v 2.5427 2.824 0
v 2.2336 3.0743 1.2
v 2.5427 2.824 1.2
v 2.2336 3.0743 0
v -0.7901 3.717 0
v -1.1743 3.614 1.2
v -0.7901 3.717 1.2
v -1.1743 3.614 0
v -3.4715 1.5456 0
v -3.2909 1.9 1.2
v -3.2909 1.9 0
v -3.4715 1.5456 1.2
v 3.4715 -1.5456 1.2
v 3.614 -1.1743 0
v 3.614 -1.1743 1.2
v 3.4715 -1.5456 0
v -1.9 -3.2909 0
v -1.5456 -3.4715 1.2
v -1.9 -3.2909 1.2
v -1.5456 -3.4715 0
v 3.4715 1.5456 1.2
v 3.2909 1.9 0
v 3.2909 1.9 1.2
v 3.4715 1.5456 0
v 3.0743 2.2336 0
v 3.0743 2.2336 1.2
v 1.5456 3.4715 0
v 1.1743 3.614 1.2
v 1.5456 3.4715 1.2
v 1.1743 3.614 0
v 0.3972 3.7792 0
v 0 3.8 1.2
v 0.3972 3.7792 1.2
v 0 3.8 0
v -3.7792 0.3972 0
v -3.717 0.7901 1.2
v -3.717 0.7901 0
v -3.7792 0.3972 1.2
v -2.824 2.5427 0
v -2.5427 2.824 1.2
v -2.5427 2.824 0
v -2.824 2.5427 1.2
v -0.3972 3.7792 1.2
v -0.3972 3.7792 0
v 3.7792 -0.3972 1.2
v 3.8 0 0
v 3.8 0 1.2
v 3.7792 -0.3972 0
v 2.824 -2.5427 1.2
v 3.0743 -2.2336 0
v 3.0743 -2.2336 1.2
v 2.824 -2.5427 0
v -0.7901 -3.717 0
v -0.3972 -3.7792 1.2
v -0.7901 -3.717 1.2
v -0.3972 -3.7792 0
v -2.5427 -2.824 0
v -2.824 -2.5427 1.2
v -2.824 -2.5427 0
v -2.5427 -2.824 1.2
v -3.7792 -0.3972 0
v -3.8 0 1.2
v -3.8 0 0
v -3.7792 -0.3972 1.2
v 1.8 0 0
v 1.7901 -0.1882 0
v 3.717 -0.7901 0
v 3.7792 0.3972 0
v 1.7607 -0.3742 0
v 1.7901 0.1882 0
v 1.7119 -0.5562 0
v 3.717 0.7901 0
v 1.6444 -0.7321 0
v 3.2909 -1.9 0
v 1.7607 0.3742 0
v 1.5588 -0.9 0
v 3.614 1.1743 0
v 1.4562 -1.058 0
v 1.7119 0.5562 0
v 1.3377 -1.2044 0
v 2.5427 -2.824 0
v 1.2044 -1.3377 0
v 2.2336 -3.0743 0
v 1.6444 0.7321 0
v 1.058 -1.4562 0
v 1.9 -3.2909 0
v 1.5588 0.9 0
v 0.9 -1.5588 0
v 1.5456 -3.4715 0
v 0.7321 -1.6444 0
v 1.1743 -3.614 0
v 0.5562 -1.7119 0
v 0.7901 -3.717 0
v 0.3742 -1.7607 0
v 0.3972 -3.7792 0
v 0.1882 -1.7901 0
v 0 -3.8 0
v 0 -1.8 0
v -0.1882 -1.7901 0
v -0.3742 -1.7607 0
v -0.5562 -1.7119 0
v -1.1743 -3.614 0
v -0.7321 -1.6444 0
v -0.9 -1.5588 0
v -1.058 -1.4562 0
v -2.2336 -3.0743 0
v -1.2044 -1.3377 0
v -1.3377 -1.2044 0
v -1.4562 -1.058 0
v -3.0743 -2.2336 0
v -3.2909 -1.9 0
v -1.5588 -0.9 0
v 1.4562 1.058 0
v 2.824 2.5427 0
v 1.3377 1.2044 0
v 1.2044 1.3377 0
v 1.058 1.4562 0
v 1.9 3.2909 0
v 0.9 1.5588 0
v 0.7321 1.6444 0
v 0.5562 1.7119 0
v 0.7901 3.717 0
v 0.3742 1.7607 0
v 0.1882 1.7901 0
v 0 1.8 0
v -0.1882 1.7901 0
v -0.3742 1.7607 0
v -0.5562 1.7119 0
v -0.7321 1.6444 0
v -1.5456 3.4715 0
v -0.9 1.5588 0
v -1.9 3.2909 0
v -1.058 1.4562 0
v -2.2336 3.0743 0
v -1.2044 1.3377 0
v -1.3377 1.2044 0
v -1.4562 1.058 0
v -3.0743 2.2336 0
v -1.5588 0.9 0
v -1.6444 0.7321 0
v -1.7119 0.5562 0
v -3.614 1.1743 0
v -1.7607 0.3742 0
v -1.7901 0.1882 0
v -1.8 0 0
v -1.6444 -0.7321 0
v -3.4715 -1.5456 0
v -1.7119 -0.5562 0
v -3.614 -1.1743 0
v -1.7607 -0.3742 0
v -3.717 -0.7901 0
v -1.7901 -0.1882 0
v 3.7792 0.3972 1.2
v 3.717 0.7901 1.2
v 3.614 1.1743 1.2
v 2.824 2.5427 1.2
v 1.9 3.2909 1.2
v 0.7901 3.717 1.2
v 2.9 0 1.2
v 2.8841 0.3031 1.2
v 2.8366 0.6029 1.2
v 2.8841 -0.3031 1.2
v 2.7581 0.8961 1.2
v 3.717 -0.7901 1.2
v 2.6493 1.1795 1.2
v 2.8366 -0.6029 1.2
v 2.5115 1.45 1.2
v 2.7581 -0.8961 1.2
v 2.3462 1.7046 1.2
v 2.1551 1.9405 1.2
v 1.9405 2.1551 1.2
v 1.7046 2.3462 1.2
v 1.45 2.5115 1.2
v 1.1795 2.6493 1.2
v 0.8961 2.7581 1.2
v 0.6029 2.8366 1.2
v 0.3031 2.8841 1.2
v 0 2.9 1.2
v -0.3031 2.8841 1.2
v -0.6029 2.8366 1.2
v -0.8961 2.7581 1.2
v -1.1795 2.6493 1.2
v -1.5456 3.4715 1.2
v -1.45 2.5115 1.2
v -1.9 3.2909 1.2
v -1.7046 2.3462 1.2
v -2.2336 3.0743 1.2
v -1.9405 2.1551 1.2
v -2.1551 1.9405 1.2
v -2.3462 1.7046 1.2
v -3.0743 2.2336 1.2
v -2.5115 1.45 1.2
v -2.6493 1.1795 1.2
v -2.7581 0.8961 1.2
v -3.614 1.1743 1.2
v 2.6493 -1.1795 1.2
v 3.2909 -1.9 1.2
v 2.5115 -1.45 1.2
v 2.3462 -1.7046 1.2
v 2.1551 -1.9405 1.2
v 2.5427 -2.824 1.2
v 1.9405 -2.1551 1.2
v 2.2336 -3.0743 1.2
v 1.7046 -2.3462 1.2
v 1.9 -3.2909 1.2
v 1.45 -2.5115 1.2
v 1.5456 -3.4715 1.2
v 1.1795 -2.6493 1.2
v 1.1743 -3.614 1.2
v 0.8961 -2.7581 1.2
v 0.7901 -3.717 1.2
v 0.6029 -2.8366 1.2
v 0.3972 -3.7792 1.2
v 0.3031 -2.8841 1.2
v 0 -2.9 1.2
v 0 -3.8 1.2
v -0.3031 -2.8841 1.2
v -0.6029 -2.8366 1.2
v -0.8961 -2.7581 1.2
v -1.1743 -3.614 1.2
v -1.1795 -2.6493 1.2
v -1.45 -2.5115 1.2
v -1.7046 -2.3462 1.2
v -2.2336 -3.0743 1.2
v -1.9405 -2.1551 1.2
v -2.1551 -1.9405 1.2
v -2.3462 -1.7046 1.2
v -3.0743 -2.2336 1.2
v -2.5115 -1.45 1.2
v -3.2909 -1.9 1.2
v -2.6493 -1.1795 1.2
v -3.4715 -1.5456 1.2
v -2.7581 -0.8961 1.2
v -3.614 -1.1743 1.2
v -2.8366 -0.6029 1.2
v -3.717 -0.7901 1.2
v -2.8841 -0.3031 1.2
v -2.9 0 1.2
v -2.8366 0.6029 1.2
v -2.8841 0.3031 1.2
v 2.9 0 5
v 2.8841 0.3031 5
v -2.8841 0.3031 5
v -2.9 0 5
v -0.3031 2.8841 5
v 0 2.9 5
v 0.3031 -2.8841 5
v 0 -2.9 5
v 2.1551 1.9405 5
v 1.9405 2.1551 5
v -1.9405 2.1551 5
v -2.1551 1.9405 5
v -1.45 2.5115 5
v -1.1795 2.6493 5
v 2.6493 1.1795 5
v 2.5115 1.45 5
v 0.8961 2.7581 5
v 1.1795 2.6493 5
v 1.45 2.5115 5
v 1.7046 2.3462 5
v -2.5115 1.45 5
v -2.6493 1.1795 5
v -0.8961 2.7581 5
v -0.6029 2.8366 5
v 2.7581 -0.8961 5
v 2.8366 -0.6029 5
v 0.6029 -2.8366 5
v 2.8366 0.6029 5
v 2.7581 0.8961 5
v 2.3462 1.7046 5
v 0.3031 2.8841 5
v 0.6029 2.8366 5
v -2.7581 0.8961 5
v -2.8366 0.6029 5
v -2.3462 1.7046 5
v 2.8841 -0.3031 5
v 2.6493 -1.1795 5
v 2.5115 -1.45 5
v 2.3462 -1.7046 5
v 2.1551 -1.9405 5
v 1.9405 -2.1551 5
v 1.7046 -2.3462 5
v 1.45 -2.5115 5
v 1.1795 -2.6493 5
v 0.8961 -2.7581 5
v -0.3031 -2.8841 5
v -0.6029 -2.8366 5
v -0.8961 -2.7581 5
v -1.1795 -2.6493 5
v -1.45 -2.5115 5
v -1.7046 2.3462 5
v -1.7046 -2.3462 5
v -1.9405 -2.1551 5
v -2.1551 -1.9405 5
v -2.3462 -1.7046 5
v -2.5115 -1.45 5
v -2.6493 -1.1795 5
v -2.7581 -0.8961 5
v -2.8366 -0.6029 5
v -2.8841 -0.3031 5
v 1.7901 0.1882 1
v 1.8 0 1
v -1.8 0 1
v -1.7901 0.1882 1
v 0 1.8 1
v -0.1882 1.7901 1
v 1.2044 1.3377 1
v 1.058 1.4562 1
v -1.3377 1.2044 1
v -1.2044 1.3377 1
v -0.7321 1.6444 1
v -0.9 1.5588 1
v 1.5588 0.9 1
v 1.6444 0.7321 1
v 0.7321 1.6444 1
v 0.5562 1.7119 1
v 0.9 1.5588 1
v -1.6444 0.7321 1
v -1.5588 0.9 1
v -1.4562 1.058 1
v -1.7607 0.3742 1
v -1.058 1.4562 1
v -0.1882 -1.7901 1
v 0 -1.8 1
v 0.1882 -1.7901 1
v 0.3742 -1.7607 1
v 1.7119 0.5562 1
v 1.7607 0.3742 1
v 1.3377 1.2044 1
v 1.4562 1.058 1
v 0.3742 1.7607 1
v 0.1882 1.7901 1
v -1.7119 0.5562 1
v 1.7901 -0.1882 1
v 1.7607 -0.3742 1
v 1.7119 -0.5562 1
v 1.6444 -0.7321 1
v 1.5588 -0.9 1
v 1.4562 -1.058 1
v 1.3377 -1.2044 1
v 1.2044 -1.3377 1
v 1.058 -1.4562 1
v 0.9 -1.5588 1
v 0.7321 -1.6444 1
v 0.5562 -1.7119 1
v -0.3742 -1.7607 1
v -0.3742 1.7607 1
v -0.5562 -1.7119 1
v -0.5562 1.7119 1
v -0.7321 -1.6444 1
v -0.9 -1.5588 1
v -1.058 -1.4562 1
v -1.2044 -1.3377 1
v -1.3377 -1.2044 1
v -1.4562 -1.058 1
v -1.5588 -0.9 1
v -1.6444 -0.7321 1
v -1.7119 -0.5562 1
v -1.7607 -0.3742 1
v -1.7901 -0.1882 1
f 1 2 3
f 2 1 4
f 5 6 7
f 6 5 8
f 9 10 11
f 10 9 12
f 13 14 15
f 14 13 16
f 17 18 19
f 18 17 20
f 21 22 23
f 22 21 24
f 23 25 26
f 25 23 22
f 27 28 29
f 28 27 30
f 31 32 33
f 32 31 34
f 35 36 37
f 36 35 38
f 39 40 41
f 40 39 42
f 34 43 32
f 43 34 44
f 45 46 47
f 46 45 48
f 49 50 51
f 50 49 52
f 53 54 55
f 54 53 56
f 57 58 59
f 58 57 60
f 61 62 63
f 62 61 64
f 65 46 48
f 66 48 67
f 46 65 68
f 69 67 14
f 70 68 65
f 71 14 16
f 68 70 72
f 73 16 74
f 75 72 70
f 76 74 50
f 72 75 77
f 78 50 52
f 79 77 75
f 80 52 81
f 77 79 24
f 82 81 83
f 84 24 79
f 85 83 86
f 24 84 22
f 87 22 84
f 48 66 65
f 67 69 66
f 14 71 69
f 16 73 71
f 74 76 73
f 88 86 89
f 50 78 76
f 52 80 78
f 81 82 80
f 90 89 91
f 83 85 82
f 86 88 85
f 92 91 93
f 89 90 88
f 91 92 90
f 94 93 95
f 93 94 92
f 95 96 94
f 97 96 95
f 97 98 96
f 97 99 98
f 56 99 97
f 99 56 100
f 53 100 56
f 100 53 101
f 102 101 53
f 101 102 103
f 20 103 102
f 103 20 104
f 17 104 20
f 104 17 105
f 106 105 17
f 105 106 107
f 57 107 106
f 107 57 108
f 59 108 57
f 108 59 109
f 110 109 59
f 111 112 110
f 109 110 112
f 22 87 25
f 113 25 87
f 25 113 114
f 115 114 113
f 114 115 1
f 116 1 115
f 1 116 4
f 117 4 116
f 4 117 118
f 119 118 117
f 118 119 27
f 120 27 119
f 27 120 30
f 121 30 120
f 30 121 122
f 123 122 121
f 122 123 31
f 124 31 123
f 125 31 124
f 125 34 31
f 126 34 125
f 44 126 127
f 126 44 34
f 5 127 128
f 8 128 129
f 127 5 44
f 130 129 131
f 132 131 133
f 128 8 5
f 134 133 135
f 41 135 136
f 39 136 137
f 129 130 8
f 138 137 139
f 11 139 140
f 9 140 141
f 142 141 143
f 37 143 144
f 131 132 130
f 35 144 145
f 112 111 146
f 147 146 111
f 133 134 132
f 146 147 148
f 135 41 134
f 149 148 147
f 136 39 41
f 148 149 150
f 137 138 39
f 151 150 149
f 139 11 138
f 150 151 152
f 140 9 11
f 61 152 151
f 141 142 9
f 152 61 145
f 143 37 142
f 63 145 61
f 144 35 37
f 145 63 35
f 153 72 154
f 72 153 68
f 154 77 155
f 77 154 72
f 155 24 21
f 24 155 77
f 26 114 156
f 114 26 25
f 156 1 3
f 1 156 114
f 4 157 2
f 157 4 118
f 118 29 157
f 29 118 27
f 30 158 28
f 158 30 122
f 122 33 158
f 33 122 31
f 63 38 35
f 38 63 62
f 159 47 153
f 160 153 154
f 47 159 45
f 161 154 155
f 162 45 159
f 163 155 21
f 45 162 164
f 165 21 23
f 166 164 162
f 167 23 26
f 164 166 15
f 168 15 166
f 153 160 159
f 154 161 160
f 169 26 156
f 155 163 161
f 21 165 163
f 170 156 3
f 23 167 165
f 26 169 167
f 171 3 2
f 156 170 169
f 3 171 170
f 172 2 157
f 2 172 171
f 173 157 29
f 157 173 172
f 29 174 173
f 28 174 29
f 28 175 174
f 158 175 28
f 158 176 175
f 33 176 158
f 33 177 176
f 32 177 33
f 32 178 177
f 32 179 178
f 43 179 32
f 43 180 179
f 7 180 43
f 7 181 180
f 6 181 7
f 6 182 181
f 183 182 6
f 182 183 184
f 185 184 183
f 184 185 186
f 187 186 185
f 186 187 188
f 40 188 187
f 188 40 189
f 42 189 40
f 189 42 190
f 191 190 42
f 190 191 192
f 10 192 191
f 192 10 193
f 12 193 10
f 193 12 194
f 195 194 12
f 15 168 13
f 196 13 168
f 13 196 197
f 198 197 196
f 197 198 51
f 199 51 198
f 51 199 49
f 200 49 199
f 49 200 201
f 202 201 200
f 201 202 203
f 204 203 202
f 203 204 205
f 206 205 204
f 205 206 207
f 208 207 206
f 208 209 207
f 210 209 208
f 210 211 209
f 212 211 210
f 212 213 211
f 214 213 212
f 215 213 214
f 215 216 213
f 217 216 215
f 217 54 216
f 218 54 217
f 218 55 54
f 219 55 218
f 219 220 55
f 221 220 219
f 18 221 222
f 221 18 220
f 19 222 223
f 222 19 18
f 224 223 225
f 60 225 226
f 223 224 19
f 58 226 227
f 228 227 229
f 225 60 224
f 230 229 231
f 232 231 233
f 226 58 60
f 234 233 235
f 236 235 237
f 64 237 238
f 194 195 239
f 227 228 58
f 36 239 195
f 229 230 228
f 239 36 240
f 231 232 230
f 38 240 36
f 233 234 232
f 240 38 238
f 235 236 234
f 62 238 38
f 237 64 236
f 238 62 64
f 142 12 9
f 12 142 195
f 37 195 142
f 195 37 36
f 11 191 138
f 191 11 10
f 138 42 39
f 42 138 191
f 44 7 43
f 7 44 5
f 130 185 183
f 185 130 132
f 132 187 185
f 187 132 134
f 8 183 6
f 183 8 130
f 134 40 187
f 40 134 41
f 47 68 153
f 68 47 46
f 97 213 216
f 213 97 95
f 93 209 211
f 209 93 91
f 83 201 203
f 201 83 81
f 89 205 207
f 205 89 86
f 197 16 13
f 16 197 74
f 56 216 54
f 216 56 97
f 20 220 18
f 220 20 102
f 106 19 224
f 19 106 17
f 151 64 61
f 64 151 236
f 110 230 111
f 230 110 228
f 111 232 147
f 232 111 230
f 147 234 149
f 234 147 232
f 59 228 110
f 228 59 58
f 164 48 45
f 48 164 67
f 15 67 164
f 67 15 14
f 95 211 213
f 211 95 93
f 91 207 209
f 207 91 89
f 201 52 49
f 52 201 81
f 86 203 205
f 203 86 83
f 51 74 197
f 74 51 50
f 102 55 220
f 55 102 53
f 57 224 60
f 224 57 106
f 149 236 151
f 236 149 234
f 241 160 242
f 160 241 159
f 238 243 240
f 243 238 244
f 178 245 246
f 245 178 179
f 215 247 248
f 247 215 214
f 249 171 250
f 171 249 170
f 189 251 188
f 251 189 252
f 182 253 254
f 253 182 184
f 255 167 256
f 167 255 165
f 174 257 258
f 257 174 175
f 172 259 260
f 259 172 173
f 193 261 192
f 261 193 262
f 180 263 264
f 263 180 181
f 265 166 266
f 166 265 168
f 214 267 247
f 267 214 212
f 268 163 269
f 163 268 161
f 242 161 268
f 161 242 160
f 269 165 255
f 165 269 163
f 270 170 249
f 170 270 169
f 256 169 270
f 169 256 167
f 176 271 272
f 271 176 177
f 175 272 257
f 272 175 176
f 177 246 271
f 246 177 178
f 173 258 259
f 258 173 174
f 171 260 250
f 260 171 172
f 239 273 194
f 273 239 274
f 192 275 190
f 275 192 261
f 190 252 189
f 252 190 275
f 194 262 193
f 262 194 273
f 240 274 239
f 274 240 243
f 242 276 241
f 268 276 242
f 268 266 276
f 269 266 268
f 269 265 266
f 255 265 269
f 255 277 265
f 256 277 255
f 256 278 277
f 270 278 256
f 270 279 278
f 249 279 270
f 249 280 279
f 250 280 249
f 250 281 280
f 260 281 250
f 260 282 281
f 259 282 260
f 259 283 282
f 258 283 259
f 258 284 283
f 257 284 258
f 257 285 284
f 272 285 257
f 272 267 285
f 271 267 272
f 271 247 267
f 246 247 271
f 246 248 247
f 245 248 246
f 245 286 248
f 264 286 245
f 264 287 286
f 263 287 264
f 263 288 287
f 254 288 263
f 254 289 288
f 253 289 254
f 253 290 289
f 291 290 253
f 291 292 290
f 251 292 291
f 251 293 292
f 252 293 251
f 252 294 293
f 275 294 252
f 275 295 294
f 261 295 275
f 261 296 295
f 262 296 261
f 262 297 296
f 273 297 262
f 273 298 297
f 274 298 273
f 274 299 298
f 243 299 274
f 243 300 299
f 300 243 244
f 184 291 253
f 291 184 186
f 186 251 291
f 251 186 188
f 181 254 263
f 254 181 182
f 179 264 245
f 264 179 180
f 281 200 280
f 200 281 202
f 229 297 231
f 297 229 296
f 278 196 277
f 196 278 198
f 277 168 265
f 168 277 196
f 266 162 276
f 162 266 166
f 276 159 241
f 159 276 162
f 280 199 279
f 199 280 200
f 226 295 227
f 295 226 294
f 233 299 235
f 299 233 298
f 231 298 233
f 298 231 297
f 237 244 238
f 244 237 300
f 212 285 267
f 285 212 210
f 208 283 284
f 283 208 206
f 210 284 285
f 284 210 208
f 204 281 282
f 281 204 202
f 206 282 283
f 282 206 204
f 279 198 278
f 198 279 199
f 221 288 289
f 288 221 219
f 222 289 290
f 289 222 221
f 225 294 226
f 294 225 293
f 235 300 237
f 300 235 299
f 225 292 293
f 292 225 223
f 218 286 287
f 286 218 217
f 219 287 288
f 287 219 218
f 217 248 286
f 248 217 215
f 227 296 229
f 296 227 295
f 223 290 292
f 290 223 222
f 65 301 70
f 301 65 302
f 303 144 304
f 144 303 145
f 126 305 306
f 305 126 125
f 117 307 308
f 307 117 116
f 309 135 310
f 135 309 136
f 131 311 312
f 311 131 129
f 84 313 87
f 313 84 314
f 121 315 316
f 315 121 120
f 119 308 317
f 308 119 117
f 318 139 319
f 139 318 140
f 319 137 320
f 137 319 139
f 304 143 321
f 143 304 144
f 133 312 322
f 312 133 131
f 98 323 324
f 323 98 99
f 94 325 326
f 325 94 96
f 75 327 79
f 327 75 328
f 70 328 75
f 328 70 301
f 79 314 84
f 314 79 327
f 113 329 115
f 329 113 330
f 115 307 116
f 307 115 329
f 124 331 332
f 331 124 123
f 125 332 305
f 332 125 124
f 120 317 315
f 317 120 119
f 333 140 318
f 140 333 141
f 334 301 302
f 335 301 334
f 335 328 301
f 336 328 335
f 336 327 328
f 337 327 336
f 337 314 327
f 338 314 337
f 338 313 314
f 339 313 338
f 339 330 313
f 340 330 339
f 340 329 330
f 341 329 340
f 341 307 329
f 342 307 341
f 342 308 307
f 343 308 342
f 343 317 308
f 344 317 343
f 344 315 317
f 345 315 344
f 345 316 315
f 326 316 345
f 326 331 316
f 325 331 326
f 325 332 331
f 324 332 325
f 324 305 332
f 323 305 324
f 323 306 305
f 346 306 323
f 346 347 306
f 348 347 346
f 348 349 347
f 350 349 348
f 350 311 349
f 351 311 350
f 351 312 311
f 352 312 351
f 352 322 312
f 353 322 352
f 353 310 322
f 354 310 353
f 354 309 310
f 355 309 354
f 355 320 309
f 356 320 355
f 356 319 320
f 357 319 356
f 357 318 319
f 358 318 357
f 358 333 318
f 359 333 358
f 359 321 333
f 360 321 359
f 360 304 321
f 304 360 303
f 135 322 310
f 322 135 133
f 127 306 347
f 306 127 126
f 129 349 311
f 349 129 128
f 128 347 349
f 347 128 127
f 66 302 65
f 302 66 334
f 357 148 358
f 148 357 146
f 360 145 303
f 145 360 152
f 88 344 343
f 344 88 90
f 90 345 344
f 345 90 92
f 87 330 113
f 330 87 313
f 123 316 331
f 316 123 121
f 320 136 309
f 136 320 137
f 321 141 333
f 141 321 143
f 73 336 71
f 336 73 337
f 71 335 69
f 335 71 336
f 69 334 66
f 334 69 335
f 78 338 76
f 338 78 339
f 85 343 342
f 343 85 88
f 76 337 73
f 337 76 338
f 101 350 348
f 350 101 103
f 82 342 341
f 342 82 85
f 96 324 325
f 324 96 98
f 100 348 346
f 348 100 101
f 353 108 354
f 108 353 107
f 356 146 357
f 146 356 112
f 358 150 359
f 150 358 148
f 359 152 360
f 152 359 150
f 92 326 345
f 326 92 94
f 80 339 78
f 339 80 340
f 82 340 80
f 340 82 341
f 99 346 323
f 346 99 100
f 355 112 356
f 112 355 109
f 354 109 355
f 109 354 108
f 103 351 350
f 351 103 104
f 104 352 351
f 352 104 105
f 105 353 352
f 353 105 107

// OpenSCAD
$fn=60;

module button_cap()
{
    color("red") difference()
    {
        union()
        {
            cylinder(r=3.8, h=1.2);
            cylinder(r=2.9, h=5.0);
        }
        translate([0, 0, -0.05]) cylinder(r=1.8, h=1.05);
    }
}

button_cap();
